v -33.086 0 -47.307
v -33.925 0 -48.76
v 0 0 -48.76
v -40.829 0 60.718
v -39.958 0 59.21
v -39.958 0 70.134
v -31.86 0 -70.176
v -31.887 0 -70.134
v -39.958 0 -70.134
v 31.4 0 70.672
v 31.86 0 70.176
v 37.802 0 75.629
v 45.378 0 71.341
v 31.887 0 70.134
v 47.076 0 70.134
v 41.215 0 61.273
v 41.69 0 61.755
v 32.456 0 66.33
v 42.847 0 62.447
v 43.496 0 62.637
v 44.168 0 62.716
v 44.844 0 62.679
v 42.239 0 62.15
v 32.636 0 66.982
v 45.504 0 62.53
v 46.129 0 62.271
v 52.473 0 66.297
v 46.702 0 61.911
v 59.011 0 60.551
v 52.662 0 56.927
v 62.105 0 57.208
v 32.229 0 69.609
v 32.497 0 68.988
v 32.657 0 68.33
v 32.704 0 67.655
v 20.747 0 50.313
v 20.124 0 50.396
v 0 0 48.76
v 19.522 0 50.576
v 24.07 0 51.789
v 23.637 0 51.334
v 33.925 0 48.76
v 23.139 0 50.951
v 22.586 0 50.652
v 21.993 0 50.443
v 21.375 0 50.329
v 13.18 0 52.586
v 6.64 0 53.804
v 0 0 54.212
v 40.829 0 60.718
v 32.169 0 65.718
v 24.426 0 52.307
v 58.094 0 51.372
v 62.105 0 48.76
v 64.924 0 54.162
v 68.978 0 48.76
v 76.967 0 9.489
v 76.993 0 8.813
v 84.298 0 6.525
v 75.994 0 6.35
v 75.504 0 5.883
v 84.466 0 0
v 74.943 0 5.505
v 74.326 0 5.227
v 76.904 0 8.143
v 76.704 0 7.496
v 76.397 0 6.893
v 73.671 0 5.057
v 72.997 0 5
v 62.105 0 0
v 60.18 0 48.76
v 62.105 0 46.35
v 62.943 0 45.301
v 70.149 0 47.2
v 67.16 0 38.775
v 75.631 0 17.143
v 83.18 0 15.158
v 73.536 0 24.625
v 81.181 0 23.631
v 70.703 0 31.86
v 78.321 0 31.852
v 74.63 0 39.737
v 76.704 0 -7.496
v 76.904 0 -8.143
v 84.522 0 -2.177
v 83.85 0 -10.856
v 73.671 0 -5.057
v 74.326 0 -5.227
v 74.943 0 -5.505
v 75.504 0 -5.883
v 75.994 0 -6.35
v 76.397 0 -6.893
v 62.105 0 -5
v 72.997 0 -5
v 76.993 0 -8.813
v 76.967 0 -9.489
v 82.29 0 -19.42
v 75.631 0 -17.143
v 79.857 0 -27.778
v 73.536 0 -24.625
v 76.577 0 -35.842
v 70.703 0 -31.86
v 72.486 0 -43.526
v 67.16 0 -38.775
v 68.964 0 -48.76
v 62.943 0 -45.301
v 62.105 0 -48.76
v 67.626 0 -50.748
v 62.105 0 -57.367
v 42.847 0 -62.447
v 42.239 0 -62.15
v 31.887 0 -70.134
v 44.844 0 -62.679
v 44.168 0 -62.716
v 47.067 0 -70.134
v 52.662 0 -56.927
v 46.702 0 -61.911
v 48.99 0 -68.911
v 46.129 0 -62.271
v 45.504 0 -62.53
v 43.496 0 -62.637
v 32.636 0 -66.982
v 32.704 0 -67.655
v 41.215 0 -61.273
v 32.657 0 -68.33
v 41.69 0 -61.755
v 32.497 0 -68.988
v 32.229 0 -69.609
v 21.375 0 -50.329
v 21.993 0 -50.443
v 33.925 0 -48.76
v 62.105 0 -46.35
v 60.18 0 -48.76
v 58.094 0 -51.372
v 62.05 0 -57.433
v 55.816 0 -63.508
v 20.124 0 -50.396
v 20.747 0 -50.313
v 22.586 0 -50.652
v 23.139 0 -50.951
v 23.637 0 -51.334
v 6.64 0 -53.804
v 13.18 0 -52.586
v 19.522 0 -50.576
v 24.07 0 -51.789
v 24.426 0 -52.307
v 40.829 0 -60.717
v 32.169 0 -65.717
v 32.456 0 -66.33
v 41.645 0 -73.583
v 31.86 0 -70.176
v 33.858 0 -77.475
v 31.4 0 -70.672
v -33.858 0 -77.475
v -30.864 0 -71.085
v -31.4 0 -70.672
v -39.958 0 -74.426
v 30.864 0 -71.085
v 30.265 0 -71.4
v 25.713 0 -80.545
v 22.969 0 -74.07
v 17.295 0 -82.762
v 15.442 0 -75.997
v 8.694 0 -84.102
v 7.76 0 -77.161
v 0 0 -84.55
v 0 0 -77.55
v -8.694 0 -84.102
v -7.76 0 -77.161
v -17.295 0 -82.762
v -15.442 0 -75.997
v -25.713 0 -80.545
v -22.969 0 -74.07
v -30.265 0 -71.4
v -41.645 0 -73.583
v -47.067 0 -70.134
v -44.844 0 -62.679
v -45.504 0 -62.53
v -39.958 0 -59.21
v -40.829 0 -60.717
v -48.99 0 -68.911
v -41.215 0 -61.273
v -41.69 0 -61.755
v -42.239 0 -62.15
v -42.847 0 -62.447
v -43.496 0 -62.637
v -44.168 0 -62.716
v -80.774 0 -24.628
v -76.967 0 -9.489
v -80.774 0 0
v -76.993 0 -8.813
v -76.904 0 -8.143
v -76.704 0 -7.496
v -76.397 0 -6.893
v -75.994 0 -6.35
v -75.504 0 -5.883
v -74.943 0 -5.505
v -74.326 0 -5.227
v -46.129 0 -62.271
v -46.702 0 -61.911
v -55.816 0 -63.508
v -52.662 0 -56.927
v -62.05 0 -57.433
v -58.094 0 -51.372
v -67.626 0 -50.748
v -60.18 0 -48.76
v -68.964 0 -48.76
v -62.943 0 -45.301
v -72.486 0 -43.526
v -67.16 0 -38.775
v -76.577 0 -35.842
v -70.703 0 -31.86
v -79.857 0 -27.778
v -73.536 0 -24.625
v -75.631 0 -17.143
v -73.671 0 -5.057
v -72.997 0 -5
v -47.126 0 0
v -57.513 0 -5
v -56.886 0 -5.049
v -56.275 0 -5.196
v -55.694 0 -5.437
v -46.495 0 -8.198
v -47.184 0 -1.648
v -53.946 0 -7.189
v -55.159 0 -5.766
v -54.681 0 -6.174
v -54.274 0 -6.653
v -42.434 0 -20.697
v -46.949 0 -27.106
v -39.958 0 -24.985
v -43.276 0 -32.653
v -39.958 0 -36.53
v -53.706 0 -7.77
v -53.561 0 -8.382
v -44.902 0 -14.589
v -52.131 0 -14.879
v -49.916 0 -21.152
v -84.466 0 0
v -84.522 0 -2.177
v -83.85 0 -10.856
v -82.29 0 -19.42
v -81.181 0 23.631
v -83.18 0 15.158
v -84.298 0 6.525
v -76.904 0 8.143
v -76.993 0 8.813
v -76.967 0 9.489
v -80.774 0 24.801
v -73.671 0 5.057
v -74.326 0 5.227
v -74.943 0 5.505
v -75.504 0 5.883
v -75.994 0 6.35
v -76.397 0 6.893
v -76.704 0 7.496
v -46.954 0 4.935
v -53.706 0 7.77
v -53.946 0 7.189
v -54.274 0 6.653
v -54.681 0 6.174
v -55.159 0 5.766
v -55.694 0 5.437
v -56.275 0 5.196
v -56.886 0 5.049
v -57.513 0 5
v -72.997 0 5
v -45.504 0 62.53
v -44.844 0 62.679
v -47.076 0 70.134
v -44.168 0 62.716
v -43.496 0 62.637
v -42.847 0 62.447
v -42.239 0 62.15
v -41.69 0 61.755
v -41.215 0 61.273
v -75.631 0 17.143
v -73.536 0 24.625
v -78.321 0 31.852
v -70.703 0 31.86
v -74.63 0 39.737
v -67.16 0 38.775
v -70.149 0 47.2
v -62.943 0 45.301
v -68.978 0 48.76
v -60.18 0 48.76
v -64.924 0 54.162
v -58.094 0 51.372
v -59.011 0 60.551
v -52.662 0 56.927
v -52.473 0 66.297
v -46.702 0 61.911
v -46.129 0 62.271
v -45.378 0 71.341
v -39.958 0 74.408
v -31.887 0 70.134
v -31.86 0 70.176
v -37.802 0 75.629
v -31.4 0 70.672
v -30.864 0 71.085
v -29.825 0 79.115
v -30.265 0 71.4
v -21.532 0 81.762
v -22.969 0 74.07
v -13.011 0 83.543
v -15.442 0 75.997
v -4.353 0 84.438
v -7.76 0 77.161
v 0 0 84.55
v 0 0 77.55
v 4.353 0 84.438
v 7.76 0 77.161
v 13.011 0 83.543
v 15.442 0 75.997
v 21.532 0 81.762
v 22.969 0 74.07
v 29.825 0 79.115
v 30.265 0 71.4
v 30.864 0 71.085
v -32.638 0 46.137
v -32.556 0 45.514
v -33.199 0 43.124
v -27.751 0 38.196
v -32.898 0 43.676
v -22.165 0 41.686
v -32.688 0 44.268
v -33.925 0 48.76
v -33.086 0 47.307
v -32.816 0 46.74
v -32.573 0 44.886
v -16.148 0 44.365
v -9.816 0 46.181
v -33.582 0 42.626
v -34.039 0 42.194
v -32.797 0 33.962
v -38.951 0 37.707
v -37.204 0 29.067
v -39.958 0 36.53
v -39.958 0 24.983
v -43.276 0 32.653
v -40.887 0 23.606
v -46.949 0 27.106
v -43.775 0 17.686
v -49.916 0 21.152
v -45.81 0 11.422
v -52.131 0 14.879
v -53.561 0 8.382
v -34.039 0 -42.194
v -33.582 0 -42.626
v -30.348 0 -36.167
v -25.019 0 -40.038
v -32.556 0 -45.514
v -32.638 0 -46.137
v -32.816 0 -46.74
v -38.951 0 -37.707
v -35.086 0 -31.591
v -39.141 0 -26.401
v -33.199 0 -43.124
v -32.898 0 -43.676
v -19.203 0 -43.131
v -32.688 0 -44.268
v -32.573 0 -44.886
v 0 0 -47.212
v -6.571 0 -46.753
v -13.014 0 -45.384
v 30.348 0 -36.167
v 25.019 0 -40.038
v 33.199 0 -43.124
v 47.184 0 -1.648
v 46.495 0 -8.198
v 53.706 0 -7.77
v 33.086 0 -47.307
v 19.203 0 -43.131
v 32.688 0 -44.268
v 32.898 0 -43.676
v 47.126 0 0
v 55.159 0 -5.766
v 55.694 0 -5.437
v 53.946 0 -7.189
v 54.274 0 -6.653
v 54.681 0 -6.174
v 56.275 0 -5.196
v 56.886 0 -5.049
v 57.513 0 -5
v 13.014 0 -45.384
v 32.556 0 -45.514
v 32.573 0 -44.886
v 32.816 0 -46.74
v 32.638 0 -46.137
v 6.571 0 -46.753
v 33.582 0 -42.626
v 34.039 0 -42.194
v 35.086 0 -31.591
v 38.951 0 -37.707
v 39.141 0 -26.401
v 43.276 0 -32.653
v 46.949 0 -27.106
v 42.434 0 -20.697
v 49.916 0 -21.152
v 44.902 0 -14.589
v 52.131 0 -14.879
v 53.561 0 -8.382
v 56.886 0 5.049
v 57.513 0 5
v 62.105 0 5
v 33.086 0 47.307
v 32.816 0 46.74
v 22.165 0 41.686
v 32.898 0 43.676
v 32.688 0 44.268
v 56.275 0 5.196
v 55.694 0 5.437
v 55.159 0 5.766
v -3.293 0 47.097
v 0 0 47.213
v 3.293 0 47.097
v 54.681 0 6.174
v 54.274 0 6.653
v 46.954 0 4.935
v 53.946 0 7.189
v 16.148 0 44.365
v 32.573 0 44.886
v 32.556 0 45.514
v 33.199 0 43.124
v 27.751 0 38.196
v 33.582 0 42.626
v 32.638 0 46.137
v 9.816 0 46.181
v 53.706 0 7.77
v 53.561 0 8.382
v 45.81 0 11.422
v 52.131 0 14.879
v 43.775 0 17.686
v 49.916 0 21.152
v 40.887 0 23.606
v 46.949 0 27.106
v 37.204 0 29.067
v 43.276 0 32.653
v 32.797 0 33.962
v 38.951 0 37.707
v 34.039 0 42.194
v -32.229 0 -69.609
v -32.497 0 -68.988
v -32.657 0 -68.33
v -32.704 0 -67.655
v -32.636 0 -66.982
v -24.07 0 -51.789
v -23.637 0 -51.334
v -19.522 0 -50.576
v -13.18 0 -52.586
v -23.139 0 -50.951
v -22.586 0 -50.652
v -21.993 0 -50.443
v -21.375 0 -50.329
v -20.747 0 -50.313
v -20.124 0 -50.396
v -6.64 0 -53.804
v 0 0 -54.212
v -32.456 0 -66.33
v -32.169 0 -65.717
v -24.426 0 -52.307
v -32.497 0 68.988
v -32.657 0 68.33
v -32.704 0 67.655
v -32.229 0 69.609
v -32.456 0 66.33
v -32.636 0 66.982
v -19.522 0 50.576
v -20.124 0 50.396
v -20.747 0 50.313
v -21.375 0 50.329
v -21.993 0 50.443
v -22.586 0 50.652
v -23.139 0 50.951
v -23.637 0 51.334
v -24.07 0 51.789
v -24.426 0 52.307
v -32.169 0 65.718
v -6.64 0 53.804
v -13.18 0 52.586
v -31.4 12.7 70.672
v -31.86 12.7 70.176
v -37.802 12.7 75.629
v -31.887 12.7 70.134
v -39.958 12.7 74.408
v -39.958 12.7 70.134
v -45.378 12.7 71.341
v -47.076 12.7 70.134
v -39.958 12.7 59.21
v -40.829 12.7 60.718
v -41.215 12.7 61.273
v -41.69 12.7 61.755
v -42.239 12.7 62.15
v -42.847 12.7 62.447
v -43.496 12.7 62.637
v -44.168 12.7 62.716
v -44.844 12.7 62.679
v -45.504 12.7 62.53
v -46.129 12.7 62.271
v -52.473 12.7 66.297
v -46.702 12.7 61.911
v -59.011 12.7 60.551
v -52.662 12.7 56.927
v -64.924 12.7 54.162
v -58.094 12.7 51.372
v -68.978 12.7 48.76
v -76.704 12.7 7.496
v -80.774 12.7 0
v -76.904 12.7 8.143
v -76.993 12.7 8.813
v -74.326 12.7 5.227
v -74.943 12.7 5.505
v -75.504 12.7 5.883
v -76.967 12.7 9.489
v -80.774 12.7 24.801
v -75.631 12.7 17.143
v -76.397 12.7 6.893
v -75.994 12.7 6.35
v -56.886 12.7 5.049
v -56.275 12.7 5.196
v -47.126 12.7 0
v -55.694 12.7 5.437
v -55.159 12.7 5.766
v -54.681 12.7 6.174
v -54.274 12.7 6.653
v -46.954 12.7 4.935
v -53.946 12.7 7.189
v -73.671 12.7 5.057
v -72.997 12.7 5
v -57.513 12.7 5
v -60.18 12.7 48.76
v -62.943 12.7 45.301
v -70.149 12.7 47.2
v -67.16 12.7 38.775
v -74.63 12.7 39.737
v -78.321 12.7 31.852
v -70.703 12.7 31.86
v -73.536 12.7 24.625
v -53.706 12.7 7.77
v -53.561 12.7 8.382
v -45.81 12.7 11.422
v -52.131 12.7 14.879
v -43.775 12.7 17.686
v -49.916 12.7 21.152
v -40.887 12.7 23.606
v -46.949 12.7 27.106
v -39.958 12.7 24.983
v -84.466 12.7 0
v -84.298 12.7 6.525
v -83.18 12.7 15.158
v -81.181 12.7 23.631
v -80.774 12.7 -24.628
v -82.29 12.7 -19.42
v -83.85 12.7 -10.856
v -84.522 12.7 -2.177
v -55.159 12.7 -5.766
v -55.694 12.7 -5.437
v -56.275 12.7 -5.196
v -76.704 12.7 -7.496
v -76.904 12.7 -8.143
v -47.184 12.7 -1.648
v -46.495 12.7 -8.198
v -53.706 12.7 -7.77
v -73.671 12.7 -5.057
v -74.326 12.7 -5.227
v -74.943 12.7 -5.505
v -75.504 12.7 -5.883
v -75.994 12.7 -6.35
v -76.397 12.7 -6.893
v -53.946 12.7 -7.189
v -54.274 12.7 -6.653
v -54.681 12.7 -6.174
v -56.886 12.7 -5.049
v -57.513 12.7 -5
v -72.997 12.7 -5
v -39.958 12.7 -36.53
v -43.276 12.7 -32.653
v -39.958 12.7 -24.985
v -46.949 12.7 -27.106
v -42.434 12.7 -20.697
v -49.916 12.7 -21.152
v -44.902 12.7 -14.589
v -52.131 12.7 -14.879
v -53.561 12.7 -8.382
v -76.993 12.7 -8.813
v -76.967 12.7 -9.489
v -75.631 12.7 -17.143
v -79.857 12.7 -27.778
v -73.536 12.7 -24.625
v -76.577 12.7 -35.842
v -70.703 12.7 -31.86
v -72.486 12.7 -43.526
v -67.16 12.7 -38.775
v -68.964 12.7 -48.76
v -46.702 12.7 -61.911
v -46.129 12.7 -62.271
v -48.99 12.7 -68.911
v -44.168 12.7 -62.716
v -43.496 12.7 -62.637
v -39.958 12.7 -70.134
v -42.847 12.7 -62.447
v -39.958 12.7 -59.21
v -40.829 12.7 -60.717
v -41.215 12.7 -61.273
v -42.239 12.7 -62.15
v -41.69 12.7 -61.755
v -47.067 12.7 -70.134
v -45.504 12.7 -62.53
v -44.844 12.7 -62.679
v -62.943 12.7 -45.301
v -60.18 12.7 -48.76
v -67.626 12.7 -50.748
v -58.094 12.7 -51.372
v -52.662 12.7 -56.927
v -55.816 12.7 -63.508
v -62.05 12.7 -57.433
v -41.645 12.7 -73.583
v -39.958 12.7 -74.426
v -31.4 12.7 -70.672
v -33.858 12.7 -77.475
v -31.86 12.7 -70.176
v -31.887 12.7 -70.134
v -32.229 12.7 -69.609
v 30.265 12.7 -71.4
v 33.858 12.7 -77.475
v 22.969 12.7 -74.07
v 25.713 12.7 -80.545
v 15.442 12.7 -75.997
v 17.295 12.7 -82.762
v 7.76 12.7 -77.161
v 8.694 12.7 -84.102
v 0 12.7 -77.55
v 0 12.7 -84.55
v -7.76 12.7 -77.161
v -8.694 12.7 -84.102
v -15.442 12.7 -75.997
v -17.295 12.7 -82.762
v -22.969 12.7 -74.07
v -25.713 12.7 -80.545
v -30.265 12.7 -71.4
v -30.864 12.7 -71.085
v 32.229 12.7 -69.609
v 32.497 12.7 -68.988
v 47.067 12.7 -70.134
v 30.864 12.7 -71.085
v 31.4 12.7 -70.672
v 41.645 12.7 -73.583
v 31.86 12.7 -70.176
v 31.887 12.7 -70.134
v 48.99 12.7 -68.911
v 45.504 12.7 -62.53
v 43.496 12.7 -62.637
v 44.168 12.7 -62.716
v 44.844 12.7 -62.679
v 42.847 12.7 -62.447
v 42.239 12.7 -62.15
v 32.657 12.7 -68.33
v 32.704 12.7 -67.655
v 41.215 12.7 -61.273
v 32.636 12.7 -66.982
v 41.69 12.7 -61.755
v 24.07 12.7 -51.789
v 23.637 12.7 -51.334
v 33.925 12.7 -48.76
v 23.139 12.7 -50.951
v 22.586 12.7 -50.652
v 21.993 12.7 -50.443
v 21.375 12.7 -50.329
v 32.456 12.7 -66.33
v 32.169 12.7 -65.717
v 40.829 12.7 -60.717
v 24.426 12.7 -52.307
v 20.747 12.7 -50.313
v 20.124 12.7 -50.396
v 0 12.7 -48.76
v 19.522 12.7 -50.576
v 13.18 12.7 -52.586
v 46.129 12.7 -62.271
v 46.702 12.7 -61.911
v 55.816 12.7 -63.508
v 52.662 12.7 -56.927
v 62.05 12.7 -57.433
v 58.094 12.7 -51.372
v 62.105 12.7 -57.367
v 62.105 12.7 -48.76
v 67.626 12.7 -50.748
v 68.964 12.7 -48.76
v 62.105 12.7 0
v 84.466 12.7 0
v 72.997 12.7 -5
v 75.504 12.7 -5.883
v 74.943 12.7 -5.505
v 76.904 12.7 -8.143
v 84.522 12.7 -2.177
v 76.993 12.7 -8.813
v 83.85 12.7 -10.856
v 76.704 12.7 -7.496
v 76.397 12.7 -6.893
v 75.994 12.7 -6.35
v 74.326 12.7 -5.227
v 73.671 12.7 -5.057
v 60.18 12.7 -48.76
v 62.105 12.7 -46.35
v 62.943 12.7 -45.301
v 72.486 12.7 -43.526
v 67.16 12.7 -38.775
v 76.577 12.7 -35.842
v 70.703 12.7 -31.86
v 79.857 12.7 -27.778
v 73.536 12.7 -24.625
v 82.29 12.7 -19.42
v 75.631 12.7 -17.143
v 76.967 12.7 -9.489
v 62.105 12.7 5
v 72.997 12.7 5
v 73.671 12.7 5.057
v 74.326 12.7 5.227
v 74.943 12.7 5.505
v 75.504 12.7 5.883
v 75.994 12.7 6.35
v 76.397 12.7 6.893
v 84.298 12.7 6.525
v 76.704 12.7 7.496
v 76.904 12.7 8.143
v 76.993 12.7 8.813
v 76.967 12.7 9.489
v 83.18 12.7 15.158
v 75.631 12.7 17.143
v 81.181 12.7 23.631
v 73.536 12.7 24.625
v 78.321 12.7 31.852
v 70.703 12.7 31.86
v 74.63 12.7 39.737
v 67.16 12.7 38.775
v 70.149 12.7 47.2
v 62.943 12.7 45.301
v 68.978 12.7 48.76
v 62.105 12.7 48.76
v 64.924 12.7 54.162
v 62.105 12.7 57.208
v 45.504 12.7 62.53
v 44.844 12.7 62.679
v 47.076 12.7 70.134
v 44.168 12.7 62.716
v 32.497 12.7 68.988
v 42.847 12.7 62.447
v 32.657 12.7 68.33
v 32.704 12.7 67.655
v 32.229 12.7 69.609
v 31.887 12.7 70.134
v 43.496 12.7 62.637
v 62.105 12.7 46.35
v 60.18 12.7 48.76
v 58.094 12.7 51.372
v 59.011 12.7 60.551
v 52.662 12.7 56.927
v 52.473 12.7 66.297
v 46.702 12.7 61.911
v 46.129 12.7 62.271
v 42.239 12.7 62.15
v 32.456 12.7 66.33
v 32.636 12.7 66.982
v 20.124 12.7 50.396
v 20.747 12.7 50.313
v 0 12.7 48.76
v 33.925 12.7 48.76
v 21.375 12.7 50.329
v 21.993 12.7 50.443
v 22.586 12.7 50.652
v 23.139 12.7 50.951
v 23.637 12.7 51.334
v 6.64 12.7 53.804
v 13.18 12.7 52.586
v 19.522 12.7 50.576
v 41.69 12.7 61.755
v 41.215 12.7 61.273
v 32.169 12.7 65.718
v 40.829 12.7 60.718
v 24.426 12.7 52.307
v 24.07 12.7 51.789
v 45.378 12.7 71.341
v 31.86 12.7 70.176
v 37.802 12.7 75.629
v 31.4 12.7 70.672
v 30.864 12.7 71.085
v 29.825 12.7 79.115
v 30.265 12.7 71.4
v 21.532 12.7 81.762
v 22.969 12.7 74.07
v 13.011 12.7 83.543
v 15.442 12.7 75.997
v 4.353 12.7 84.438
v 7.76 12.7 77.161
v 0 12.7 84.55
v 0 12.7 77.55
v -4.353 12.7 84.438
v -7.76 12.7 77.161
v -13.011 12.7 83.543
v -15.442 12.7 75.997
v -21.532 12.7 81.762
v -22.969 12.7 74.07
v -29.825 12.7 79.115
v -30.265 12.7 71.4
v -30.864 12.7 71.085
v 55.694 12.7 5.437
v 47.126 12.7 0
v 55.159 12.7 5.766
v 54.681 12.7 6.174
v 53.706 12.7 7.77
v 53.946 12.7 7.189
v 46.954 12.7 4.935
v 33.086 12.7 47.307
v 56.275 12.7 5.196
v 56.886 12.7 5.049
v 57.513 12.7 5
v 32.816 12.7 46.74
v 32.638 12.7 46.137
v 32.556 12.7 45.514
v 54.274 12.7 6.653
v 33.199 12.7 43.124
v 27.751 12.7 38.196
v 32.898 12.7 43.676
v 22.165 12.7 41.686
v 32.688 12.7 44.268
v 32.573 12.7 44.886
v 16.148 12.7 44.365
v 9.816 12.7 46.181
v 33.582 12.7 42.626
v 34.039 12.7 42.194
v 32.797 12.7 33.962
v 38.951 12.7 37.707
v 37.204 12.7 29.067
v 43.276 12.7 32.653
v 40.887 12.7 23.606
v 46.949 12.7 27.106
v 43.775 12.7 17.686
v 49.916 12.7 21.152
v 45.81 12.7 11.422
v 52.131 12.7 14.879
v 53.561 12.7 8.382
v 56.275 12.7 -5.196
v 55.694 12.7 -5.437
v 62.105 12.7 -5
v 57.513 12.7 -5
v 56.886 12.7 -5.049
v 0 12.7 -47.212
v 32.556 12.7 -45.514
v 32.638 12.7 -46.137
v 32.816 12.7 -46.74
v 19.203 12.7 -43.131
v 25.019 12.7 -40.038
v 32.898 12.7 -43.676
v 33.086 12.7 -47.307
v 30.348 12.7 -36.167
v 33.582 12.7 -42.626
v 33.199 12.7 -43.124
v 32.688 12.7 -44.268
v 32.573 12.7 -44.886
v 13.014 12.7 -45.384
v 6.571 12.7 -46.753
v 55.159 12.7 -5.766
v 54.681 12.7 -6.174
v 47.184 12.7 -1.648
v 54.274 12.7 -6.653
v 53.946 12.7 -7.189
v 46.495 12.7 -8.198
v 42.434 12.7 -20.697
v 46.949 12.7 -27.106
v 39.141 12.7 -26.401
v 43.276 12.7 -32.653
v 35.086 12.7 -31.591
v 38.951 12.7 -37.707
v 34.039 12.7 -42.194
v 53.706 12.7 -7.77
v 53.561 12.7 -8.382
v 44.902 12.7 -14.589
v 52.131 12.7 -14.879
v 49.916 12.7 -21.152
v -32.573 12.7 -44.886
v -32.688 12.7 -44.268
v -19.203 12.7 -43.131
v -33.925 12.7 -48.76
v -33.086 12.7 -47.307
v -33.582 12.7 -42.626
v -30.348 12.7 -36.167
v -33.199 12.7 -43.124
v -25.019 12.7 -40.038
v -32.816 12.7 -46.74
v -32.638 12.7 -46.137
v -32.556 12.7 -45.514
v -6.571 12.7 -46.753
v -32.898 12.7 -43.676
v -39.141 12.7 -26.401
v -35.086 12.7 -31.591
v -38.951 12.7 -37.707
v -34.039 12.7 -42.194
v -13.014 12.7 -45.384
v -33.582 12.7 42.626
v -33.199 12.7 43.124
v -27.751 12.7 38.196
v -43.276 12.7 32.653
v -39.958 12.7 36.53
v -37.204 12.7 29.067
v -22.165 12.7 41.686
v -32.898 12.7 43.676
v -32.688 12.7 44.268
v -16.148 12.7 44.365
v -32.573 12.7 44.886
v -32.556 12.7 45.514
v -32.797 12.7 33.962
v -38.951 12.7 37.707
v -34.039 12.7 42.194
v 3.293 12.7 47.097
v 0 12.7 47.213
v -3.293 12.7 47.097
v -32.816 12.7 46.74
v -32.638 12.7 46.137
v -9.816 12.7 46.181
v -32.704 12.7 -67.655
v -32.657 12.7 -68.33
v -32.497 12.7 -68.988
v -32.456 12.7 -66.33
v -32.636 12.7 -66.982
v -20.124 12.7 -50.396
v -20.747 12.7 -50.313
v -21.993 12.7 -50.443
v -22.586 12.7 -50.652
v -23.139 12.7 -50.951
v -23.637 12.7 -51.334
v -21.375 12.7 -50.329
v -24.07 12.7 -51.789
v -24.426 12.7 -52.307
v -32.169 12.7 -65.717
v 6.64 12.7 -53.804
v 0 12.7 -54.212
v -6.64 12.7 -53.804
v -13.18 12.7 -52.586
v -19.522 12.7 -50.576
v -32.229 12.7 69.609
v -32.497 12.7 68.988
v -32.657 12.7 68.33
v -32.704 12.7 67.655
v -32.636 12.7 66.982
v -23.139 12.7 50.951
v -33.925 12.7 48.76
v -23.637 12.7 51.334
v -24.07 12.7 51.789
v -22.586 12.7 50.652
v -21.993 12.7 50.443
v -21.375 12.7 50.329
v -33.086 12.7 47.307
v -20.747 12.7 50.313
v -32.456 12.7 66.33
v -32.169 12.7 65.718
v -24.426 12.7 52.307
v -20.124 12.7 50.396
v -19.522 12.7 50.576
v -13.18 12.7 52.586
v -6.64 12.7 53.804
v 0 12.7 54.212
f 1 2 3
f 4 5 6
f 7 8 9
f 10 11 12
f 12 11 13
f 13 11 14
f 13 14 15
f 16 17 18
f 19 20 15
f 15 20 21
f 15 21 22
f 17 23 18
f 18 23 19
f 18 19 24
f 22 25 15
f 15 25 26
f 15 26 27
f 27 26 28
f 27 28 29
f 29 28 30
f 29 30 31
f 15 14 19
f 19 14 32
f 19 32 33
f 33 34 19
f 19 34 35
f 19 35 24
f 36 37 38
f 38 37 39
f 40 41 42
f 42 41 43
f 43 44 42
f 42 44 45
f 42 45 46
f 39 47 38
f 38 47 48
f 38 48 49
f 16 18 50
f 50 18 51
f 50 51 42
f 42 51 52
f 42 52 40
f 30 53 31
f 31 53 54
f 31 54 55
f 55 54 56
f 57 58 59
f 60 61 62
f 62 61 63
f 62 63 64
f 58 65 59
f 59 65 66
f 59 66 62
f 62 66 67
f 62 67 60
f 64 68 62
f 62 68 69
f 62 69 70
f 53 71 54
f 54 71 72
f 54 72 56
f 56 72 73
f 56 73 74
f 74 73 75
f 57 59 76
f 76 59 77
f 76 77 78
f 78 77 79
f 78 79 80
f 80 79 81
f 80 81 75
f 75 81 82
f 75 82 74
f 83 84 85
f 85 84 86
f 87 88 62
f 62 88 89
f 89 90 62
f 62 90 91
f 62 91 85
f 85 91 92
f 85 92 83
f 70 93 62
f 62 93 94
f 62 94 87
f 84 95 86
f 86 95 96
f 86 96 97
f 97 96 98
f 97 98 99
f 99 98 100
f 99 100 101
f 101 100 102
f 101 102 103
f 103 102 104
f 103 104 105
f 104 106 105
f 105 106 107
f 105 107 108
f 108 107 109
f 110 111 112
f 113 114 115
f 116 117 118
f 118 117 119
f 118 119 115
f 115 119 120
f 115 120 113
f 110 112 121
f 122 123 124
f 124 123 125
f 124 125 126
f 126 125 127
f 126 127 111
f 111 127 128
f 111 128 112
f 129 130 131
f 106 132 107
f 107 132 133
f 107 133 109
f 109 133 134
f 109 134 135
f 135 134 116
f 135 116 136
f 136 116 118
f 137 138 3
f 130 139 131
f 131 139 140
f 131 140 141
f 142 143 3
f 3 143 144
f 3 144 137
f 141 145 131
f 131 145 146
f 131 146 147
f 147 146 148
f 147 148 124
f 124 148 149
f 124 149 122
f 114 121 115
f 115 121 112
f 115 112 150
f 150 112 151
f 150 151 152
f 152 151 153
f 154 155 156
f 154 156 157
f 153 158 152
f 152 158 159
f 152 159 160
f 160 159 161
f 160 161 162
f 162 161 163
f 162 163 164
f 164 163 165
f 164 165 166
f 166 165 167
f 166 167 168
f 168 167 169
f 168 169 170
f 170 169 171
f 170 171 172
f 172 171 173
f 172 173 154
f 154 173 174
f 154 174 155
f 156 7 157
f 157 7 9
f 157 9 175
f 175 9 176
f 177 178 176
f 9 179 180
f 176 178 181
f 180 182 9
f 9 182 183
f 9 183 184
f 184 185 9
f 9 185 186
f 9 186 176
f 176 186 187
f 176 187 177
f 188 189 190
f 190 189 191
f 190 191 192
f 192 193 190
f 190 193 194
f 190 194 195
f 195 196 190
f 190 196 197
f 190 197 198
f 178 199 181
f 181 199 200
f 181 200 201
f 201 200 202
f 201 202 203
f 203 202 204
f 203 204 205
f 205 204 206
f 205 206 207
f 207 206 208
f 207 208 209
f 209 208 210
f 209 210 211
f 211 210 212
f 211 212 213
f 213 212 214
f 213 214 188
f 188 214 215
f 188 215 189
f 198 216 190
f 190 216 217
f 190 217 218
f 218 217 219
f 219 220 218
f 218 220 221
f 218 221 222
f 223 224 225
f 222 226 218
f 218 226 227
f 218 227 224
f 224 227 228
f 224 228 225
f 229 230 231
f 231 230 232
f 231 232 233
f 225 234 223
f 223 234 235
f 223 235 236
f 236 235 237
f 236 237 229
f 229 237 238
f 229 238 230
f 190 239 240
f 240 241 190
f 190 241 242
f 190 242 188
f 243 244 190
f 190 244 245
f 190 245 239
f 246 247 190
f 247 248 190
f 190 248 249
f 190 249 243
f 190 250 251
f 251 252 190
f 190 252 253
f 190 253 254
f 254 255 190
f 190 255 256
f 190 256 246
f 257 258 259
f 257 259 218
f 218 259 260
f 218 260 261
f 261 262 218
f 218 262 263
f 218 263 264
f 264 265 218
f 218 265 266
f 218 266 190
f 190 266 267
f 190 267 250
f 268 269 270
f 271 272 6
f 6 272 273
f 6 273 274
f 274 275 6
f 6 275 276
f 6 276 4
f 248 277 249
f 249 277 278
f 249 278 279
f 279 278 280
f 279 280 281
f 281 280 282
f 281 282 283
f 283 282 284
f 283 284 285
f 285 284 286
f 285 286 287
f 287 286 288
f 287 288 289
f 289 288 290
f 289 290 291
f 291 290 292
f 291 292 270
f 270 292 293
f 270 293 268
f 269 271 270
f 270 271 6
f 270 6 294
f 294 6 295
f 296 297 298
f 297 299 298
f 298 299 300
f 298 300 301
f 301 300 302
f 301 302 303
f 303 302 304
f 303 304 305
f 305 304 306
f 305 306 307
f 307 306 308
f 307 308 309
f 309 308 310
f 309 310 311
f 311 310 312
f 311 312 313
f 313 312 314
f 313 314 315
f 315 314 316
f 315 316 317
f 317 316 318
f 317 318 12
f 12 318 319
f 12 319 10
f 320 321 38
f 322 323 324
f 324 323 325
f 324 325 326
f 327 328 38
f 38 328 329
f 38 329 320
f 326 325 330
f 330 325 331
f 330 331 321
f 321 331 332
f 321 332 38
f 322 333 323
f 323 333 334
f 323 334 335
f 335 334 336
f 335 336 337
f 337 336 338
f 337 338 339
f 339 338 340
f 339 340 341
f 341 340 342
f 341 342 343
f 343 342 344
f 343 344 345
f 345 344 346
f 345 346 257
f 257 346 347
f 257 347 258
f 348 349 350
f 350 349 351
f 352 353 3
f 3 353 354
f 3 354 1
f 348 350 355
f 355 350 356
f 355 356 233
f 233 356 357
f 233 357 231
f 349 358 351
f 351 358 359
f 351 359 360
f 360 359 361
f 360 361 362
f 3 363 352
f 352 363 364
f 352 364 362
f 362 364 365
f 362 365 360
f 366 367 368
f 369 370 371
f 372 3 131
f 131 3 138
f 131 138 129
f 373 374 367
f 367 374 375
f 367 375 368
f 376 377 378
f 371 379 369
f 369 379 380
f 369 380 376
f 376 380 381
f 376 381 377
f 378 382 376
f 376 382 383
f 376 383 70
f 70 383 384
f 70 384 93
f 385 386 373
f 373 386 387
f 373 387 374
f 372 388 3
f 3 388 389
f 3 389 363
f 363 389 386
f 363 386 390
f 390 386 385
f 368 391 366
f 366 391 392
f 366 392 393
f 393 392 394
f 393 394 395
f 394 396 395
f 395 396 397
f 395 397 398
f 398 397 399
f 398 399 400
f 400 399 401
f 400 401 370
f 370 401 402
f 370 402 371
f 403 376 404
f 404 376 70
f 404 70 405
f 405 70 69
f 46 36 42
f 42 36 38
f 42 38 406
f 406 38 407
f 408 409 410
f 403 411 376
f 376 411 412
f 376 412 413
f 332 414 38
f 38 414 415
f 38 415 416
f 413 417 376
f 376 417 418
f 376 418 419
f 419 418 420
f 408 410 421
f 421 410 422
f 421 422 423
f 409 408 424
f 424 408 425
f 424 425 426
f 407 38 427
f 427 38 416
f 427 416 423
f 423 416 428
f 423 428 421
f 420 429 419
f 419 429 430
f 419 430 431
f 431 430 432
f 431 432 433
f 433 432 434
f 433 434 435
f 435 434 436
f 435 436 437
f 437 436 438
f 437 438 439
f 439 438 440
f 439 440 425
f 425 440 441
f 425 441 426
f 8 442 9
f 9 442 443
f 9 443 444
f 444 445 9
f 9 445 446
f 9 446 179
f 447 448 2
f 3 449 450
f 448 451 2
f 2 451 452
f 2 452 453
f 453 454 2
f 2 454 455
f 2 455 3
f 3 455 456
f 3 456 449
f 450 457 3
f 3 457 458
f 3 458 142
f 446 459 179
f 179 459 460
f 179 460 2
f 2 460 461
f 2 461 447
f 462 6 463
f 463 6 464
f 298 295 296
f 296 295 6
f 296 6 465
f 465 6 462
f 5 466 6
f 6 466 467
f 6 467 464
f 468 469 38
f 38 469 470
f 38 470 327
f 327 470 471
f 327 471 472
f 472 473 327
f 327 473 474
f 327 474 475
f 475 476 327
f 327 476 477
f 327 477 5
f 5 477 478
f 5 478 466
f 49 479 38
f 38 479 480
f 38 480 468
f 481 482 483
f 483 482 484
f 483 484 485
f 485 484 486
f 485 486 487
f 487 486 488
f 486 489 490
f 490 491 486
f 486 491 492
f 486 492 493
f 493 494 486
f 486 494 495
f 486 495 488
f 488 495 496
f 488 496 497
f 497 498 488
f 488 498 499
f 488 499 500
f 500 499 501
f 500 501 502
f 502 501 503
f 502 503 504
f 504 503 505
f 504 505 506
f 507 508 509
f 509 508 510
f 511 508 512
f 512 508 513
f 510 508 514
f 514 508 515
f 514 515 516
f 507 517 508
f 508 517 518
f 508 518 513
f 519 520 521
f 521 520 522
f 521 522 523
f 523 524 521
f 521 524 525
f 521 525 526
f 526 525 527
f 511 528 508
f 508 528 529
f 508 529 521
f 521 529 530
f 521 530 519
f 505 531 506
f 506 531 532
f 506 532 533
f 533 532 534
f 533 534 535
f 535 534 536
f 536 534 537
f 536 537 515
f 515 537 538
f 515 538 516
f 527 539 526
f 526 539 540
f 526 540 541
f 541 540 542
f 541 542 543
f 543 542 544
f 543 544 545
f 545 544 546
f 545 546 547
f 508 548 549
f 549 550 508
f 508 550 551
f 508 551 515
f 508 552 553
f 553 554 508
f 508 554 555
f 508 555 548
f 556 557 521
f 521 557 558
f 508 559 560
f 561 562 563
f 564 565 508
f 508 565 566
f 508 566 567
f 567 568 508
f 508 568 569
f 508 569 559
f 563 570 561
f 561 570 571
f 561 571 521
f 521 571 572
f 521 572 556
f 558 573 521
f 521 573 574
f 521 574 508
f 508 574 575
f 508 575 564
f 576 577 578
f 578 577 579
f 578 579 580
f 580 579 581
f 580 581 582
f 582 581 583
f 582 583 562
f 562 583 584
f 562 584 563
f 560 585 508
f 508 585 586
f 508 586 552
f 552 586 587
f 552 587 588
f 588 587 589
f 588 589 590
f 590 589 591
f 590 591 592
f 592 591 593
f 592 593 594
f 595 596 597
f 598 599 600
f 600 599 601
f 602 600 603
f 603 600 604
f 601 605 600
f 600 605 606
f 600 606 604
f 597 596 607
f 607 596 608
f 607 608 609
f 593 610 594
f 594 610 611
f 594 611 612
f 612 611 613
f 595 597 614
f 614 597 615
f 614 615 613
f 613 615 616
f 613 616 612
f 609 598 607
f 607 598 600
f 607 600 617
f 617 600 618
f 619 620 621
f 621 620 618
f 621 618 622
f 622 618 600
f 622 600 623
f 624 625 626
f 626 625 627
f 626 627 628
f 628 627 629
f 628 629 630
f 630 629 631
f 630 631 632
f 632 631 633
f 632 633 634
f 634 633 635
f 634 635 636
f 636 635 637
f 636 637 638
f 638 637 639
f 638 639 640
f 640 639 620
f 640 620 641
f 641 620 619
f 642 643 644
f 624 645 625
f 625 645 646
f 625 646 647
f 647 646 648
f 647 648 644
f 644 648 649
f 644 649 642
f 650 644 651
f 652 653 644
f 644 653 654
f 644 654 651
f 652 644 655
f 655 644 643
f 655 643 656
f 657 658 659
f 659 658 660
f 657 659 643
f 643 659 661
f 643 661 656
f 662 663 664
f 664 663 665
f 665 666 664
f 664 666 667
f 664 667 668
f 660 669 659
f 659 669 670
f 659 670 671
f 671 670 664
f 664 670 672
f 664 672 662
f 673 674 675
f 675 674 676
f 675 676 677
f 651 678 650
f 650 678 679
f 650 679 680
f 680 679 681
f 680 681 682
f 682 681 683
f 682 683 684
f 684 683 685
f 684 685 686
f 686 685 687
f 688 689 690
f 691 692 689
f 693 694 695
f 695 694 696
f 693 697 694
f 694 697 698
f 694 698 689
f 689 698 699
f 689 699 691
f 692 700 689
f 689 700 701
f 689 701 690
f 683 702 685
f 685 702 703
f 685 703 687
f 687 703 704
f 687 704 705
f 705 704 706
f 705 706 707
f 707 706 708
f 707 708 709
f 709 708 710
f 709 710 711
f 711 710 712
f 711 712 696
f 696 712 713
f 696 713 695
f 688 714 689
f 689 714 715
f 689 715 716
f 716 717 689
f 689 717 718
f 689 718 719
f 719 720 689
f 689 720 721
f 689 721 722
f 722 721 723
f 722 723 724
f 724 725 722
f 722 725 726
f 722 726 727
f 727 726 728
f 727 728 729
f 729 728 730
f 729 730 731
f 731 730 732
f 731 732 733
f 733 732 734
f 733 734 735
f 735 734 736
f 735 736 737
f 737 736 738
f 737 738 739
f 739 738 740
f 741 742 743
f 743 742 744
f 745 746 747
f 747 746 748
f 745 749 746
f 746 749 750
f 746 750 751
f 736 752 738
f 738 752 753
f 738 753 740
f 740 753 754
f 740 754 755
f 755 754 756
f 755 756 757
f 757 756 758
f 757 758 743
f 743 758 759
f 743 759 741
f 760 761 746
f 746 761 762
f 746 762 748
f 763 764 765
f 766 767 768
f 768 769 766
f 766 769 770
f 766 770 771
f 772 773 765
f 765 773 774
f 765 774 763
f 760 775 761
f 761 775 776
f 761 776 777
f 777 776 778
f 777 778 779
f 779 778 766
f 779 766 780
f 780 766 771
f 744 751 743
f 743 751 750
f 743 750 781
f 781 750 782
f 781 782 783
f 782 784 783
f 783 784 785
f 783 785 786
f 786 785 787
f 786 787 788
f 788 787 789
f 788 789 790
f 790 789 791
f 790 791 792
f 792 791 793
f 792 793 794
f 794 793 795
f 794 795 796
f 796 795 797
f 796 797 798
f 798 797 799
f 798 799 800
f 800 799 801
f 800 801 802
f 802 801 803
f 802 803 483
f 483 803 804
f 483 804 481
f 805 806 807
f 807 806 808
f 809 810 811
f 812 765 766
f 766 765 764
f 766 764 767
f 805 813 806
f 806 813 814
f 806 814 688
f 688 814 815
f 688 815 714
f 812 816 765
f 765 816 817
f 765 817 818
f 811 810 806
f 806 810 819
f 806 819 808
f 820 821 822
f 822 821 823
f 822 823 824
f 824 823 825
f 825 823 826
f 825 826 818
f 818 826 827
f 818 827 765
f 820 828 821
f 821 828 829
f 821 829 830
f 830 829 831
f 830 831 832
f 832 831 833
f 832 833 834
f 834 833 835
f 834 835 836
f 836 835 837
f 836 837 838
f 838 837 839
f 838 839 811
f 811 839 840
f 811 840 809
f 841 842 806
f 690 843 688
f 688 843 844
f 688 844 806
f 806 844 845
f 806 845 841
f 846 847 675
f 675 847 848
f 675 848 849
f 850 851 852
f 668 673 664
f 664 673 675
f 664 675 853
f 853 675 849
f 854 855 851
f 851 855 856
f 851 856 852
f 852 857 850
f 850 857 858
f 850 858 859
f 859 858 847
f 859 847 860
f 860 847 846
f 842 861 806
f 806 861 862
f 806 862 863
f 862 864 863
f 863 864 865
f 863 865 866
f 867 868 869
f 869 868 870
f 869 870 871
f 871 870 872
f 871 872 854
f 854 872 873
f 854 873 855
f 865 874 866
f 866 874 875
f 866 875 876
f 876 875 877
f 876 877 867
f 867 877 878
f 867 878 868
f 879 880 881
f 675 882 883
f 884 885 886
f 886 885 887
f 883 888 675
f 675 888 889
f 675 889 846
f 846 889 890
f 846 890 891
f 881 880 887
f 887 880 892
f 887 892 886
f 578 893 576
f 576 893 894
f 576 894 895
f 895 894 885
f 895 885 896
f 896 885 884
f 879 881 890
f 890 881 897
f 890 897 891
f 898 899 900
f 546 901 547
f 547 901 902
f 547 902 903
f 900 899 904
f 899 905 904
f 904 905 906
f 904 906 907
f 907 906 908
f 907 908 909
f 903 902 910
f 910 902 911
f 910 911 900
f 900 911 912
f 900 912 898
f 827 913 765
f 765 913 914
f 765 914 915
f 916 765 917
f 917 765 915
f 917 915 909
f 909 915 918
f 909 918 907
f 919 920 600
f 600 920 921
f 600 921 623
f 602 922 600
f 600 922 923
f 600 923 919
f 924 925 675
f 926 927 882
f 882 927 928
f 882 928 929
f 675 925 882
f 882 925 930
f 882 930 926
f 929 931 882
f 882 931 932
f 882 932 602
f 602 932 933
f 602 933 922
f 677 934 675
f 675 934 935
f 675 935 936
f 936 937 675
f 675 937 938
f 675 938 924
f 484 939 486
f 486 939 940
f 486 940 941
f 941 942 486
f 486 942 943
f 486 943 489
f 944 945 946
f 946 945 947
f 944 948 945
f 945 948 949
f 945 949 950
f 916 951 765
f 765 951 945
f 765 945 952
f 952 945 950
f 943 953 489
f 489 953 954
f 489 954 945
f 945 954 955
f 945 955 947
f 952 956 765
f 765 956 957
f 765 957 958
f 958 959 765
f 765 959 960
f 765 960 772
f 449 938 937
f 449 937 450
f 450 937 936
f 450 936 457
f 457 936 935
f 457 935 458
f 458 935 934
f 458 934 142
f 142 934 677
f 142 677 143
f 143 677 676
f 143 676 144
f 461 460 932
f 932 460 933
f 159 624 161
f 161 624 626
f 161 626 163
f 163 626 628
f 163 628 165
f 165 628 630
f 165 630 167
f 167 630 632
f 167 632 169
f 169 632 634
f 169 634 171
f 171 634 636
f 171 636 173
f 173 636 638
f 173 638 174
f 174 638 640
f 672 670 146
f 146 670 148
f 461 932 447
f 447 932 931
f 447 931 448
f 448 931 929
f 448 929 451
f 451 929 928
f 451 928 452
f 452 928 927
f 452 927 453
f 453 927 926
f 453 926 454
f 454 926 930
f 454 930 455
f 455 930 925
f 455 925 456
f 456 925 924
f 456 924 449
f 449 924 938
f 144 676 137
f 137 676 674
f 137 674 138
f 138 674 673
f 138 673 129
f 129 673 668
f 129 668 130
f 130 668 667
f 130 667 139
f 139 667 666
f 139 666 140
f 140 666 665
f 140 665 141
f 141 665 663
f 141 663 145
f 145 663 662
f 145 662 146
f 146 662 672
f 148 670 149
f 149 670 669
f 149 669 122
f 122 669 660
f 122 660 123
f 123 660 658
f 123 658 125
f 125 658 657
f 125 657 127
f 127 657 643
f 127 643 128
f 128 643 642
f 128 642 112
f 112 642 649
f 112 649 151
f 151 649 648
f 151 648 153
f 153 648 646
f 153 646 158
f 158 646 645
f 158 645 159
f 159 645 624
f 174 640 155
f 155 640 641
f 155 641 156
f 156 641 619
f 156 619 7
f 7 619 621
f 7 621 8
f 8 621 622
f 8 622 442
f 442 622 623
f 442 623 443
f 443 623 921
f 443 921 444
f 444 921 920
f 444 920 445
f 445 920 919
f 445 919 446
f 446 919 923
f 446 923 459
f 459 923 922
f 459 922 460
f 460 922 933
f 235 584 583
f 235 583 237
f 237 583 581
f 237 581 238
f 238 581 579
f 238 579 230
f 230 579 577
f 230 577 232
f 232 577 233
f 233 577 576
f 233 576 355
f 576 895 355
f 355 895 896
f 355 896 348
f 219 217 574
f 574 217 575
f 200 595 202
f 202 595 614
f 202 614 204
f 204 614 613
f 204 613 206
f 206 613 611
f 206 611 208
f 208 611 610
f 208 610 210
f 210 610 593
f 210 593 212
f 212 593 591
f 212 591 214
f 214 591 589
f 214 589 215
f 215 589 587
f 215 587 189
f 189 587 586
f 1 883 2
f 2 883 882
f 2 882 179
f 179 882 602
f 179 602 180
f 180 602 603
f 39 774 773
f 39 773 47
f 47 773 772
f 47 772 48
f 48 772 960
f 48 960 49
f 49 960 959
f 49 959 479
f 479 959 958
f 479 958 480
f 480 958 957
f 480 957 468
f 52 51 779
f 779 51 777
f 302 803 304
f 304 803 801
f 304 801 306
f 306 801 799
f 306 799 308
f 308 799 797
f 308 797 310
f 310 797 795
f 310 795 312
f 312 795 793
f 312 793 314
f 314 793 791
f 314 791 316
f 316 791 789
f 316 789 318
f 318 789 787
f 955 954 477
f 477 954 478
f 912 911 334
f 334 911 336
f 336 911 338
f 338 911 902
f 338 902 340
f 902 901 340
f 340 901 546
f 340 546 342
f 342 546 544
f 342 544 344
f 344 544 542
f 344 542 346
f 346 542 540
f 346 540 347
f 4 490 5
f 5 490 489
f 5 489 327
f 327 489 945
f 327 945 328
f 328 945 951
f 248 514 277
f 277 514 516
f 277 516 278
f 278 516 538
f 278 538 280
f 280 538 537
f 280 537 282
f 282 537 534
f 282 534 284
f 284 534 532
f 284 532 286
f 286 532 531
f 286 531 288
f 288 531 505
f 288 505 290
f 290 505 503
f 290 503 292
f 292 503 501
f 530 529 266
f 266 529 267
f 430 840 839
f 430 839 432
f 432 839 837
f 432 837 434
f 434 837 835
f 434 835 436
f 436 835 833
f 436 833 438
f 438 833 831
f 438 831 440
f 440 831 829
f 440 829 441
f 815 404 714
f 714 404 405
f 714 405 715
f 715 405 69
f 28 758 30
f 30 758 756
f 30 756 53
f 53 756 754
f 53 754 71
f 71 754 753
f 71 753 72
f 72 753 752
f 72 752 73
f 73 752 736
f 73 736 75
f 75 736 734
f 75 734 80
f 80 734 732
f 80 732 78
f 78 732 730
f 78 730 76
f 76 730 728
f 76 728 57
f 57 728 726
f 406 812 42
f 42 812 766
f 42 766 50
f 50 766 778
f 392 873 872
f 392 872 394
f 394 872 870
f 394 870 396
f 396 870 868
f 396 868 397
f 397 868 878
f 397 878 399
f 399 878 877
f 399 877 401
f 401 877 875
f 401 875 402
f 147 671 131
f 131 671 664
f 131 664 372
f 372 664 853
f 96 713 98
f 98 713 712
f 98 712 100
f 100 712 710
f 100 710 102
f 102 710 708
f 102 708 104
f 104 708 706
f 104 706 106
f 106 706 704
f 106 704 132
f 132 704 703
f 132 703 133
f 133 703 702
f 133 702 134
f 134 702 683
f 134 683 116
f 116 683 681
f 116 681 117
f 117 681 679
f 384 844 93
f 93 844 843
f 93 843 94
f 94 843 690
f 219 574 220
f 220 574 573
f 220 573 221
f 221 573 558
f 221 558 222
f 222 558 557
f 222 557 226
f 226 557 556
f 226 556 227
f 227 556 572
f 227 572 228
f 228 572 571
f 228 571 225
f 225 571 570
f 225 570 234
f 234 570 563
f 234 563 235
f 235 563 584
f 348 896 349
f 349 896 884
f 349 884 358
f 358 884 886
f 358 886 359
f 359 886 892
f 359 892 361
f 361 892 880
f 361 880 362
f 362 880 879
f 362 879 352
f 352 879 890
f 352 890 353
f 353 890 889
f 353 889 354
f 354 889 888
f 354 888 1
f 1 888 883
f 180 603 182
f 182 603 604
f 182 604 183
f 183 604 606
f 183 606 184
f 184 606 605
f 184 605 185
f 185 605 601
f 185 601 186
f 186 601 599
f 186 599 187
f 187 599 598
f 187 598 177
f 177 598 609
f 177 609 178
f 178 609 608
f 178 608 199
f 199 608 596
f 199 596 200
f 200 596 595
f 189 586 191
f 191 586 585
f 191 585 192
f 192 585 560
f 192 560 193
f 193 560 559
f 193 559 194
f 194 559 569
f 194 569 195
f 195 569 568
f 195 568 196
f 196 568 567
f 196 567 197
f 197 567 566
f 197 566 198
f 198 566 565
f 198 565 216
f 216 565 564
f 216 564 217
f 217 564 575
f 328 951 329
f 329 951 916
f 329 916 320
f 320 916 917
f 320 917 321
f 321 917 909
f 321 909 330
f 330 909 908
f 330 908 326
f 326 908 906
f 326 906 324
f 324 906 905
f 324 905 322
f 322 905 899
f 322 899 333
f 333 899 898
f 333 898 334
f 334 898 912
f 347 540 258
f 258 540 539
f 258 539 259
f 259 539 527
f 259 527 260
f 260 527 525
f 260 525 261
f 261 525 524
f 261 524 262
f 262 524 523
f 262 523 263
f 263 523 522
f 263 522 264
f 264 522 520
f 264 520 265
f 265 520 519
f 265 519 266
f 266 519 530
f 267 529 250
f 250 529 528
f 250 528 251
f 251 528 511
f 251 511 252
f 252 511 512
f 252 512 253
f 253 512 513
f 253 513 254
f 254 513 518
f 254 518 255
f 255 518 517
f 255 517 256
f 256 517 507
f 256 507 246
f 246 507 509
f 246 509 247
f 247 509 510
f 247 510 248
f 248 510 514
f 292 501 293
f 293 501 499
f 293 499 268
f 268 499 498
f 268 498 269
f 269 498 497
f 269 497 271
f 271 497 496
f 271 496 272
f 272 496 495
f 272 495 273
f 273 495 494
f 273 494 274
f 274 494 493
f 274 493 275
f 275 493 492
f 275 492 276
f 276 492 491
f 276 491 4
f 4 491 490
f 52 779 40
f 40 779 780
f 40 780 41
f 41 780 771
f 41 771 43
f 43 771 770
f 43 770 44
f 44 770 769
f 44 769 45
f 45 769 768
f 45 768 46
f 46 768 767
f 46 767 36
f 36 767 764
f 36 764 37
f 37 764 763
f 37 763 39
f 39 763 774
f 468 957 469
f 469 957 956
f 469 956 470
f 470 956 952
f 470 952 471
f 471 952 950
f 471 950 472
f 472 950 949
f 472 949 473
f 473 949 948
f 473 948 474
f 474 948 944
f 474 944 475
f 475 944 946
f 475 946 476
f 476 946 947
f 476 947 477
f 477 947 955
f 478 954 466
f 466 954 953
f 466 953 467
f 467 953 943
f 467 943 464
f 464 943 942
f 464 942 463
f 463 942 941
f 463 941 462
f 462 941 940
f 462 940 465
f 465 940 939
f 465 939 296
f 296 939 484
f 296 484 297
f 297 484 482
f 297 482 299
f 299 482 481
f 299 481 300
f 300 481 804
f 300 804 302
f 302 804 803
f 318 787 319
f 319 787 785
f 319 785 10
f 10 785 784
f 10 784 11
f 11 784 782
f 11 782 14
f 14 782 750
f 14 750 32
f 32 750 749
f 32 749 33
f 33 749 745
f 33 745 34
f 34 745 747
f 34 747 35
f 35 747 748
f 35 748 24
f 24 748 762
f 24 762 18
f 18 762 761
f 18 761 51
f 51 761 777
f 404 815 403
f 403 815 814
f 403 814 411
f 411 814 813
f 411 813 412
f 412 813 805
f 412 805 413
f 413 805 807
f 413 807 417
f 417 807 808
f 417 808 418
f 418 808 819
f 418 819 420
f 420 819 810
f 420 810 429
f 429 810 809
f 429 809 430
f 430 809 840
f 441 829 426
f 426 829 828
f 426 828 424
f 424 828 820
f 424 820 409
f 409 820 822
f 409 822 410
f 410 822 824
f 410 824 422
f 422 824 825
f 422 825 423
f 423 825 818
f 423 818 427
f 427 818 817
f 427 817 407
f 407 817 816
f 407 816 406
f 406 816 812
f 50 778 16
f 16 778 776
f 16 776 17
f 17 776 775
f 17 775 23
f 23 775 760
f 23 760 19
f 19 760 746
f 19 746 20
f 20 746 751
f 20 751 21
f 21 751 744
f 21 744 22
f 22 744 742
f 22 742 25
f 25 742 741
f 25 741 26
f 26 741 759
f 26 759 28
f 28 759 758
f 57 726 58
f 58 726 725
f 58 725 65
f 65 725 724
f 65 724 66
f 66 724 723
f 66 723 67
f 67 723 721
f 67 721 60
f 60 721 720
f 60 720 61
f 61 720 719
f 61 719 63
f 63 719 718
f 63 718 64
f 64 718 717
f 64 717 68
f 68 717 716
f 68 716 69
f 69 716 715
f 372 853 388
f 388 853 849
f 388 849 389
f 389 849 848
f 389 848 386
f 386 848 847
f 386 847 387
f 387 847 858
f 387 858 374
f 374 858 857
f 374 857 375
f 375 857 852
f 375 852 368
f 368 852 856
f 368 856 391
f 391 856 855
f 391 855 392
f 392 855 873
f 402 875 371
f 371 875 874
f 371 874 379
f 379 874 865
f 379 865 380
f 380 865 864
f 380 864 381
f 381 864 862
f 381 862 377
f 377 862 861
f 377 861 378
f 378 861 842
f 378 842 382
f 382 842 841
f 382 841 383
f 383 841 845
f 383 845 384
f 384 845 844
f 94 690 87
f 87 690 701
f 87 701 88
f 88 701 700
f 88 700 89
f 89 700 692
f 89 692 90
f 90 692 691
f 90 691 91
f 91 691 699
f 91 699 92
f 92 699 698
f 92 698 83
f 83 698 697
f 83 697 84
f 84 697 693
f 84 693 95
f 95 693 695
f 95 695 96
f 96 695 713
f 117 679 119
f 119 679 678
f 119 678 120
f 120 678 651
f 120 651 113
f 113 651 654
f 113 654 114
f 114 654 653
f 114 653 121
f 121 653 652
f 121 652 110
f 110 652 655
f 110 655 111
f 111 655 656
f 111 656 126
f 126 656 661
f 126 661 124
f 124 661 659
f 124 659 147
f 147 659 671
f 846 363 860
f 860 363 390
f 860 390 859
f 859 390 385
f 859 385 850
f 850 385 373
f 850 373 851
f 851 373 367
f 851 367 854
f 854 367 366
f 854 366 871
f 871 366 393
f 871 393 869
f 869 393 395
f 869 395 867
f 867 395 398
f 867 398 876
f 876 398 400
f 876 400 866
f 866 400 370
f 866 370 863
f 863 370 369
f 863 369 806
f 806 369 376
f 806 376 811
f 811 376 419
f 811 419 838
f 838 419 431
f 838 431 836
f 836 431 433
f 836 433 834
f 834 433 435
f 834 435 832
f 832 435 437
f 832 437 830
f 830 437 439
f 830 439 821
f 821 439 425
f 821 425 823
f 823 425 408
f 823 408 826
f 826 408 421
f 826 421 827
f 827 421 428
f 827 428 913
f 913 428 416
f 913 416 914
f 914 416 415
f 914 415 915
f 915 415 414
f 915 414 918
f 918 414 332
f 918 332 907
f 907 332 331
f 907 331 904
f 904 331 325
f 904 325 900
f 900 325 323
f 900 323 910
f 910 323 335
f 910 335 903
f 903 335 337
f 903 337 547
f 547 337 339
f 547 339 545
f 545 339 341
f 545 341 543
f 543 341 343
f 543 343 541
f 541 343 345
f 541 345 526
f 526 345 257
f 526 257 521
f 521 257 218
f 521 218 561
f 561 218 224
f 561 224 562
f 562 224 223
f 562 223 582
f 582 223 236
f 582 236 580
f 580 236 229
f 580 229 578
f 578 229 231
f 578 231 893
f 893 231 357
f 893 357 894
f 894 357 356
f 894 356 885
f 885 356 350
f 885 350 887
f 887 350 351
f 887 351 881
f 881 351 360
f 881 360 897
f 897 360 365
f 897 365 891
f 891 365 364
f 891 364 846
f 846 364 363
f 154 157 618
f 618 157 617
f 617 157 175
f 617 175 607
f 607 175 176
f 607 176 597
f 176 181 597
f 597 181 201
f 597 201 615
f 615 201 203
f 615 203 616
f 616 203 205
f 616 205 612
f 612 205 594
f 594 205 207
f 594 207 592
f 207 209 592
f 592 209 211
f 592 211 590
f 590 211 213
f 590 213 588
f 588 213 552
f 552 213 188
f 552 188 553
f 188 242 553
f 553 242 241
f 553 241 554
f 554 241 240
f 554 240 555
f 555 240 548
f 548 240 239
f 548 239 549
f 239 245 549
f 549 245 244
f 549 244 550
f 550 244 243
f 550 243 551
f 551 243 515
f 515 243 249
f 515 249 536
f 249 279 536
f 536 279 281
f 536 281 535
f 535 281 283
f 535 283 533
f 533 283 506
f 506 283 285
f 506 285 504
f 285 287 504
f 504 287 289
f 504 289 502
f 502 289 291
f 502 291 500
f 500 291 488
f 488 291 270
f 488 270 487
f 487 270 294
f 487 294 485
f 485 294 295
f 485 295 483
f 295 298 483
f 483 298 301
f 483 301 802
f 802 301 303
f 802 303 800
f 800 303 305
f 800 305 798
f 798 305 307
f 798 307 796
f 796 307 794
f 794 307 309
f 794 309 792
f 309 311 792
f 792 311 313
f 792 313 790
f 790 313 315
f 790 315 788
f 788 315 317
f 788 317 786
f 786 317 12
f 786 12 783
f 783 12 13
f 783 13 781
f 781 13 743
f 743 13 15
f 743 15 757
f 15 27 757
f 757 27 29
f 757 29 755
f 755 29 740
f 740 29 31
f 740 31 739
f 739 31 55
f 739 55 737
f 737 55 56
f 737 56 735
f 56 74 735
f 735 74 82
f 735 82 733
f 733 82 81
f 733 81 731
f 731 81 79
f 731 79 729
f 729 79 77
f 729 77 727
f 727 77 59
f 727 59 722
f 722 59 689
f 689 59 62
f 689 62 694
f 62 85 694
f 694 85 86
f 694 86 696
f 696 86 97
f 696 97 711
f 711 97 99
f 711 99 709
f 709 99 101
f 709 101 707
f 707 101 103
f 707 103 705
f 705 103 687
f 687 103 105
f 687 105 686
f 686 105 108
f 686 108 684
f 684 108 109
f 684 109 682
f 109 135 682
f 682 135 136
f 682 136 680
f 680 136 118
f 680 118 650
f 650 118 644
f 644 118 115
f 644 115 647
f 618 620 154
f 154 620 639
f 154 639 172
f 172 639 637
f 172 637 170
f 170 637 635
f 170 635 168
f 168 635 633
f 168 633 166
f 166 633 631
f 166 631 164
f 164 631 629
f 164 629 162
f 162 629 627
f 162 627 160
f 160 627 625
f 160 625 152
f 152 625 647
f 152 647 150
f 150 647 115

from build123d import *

# Parameters (mm, degrees)
SKETCH2_W                = 33.3375
SKETCH2_H                = 12.7
CUT_EXTRUDE1_DEPTH       = 13.7
FILLET1_R                = 4
CIRPATTERN4_COUNT        = 6
FILLET1_OF_CIRPATTERN4_R = 4
SKETCH9_R                = 49.2125
SKETCH9_R_2              = 47.2125
BOSS_EXTRUDE1_DEPTH      = 12.7
SKETCH10_R               = 84.55
SKETCH10_R_2             = 82.55
BOSS_EXTRUDE2_DEPTH      = 12.7


with BuildPart() as part:
    # Sketch2 → Revolve1 (revolve)
    with BuildSketch(Plane(origin=(0, 0, 0), x_dir=(0, 0, -1), z_dir=(1, 0, 0))):
        with Locations((-65.88125, 6.35)):
            Rectangle(SKETCH2_W, SKETCH2_H)
    revolve(axis=Axis((0, -0.5, 0), (0, 1, 0)))

    # Sketch8 → Cut-Extrude1 (cut, through all)
    with BuildSketch(Plane(origin=(0, 12.7, 0), x_dir=(1, 0, 0), z_dir=(0, 1, 0))):
        with BuildLine():
            Line((-22.66059, 49.249293), (-34.364196, 69.520533))
            ThreePointArc((-34.364196, 69.520533), (0, 77.55), (34.364196, 69.520533))
            Line((34.364196, 69.520533), (22.66059, 49.249293))
            ThreePointArc((22.66059, 49.249293), (0, 54.2125), (-22.66059, 49.249293))
        make_face()
    cut_extrude1 = extrude(amount=-CUT_EXTRUDE1_DEPTH, mode=Mode.SUBTRACT)

    # Fillet1
    fillet1_edges = [part.edges().sort_by_distance(p)[0] for p in [
        (22.66059, 6.35, -49.249293),
        (-22.66059, 6.35, -49.249293),
        (-34.364196, 6.35, -69.520533),
        (34.364196, 6.35, -69.520533),
    ]]
    fillet(fillet1_edges, radius=FILLET1_R)

    # CirPattern4: Cut-Extrude1 ×6 about axis
    cirpattern4_axis = Axis((0, 0, 0), (0, 1, 0))
    for i in range(1, CIRPATTERN4_COUNT):
        add(cut_extrude1.rotate(cirpattern4_axis, i * 360 / CIRPATTERN4_COUNT), mode=Mode.SUBTRACT)

    # Fillet1 of CirPattern4
    fillet1_of_cirpattern4_edges = [part.edges().sort_by_distance(p)[0] for p in [
        (-31.320844, 6.35, -44.249293),
        (-53.981433, 6.35, -5),
        (-77.388646, 6.35, -5),
        (-43.02445, 6.35, -64.520533),
        (-53.981433, 6.35, 5),
        (-31.320844, 6.35, 44.249293),
        (-43.02445, 6.35, 64.520533),
        (-77.388646, 6.35, 5),
        (-22.66059, 6.35, 49.249293),
        (22.66059, 6.35, 49.249293),
        (34.364196, 6.35, 69.520533),
        (-34.364196, 6.35, 69.520533),
        (31.320844, 6.35, 44.249293),
        (53.981433, 6.35, 5),
        (77.388646, 6.35, 5),
        (43.02445, 6.35, 64.520533),
        (53.981433, 6.35, -5),
        (31.320844, 6.35, -44.249293),
        (43.02445, 6.35, -64.520533),
        (77.388646, 6.35, -5),
    ]]
    fillet(fillet1_of_cirpattern4_edges, radius=FILLET1_OF_CIRPATTERN4_R)

    # Sketch9 → Boss-Extrude1 (add)
    with BuildSketch(Plane(origin=(0, 0, 0), x_dir=(1, 0, 0), z_dir=(0, 1, 0))):
        Circle(SKETCH9_R)
        Circle(SKETCH9_R_2, mode=Mode.SUBTRACT)
    extrude(amount=BOSS_EXTRUDE1_DEPTH)

    # Sketch10 → Boss-Extrude2 (add)
    with BuildSketch(Plane(origin=(0, 0, 0), x_dir=(1, 0, 0), z_dir=(0, 1, 0))):
        Circle(SKETCH10_R)
        Circle(SKETCH10_R_2, mode=Mode.SUBTRACT)
    extrude(amount=BOSS_EXTRUDE2_DEPTH)


solid = part.part
